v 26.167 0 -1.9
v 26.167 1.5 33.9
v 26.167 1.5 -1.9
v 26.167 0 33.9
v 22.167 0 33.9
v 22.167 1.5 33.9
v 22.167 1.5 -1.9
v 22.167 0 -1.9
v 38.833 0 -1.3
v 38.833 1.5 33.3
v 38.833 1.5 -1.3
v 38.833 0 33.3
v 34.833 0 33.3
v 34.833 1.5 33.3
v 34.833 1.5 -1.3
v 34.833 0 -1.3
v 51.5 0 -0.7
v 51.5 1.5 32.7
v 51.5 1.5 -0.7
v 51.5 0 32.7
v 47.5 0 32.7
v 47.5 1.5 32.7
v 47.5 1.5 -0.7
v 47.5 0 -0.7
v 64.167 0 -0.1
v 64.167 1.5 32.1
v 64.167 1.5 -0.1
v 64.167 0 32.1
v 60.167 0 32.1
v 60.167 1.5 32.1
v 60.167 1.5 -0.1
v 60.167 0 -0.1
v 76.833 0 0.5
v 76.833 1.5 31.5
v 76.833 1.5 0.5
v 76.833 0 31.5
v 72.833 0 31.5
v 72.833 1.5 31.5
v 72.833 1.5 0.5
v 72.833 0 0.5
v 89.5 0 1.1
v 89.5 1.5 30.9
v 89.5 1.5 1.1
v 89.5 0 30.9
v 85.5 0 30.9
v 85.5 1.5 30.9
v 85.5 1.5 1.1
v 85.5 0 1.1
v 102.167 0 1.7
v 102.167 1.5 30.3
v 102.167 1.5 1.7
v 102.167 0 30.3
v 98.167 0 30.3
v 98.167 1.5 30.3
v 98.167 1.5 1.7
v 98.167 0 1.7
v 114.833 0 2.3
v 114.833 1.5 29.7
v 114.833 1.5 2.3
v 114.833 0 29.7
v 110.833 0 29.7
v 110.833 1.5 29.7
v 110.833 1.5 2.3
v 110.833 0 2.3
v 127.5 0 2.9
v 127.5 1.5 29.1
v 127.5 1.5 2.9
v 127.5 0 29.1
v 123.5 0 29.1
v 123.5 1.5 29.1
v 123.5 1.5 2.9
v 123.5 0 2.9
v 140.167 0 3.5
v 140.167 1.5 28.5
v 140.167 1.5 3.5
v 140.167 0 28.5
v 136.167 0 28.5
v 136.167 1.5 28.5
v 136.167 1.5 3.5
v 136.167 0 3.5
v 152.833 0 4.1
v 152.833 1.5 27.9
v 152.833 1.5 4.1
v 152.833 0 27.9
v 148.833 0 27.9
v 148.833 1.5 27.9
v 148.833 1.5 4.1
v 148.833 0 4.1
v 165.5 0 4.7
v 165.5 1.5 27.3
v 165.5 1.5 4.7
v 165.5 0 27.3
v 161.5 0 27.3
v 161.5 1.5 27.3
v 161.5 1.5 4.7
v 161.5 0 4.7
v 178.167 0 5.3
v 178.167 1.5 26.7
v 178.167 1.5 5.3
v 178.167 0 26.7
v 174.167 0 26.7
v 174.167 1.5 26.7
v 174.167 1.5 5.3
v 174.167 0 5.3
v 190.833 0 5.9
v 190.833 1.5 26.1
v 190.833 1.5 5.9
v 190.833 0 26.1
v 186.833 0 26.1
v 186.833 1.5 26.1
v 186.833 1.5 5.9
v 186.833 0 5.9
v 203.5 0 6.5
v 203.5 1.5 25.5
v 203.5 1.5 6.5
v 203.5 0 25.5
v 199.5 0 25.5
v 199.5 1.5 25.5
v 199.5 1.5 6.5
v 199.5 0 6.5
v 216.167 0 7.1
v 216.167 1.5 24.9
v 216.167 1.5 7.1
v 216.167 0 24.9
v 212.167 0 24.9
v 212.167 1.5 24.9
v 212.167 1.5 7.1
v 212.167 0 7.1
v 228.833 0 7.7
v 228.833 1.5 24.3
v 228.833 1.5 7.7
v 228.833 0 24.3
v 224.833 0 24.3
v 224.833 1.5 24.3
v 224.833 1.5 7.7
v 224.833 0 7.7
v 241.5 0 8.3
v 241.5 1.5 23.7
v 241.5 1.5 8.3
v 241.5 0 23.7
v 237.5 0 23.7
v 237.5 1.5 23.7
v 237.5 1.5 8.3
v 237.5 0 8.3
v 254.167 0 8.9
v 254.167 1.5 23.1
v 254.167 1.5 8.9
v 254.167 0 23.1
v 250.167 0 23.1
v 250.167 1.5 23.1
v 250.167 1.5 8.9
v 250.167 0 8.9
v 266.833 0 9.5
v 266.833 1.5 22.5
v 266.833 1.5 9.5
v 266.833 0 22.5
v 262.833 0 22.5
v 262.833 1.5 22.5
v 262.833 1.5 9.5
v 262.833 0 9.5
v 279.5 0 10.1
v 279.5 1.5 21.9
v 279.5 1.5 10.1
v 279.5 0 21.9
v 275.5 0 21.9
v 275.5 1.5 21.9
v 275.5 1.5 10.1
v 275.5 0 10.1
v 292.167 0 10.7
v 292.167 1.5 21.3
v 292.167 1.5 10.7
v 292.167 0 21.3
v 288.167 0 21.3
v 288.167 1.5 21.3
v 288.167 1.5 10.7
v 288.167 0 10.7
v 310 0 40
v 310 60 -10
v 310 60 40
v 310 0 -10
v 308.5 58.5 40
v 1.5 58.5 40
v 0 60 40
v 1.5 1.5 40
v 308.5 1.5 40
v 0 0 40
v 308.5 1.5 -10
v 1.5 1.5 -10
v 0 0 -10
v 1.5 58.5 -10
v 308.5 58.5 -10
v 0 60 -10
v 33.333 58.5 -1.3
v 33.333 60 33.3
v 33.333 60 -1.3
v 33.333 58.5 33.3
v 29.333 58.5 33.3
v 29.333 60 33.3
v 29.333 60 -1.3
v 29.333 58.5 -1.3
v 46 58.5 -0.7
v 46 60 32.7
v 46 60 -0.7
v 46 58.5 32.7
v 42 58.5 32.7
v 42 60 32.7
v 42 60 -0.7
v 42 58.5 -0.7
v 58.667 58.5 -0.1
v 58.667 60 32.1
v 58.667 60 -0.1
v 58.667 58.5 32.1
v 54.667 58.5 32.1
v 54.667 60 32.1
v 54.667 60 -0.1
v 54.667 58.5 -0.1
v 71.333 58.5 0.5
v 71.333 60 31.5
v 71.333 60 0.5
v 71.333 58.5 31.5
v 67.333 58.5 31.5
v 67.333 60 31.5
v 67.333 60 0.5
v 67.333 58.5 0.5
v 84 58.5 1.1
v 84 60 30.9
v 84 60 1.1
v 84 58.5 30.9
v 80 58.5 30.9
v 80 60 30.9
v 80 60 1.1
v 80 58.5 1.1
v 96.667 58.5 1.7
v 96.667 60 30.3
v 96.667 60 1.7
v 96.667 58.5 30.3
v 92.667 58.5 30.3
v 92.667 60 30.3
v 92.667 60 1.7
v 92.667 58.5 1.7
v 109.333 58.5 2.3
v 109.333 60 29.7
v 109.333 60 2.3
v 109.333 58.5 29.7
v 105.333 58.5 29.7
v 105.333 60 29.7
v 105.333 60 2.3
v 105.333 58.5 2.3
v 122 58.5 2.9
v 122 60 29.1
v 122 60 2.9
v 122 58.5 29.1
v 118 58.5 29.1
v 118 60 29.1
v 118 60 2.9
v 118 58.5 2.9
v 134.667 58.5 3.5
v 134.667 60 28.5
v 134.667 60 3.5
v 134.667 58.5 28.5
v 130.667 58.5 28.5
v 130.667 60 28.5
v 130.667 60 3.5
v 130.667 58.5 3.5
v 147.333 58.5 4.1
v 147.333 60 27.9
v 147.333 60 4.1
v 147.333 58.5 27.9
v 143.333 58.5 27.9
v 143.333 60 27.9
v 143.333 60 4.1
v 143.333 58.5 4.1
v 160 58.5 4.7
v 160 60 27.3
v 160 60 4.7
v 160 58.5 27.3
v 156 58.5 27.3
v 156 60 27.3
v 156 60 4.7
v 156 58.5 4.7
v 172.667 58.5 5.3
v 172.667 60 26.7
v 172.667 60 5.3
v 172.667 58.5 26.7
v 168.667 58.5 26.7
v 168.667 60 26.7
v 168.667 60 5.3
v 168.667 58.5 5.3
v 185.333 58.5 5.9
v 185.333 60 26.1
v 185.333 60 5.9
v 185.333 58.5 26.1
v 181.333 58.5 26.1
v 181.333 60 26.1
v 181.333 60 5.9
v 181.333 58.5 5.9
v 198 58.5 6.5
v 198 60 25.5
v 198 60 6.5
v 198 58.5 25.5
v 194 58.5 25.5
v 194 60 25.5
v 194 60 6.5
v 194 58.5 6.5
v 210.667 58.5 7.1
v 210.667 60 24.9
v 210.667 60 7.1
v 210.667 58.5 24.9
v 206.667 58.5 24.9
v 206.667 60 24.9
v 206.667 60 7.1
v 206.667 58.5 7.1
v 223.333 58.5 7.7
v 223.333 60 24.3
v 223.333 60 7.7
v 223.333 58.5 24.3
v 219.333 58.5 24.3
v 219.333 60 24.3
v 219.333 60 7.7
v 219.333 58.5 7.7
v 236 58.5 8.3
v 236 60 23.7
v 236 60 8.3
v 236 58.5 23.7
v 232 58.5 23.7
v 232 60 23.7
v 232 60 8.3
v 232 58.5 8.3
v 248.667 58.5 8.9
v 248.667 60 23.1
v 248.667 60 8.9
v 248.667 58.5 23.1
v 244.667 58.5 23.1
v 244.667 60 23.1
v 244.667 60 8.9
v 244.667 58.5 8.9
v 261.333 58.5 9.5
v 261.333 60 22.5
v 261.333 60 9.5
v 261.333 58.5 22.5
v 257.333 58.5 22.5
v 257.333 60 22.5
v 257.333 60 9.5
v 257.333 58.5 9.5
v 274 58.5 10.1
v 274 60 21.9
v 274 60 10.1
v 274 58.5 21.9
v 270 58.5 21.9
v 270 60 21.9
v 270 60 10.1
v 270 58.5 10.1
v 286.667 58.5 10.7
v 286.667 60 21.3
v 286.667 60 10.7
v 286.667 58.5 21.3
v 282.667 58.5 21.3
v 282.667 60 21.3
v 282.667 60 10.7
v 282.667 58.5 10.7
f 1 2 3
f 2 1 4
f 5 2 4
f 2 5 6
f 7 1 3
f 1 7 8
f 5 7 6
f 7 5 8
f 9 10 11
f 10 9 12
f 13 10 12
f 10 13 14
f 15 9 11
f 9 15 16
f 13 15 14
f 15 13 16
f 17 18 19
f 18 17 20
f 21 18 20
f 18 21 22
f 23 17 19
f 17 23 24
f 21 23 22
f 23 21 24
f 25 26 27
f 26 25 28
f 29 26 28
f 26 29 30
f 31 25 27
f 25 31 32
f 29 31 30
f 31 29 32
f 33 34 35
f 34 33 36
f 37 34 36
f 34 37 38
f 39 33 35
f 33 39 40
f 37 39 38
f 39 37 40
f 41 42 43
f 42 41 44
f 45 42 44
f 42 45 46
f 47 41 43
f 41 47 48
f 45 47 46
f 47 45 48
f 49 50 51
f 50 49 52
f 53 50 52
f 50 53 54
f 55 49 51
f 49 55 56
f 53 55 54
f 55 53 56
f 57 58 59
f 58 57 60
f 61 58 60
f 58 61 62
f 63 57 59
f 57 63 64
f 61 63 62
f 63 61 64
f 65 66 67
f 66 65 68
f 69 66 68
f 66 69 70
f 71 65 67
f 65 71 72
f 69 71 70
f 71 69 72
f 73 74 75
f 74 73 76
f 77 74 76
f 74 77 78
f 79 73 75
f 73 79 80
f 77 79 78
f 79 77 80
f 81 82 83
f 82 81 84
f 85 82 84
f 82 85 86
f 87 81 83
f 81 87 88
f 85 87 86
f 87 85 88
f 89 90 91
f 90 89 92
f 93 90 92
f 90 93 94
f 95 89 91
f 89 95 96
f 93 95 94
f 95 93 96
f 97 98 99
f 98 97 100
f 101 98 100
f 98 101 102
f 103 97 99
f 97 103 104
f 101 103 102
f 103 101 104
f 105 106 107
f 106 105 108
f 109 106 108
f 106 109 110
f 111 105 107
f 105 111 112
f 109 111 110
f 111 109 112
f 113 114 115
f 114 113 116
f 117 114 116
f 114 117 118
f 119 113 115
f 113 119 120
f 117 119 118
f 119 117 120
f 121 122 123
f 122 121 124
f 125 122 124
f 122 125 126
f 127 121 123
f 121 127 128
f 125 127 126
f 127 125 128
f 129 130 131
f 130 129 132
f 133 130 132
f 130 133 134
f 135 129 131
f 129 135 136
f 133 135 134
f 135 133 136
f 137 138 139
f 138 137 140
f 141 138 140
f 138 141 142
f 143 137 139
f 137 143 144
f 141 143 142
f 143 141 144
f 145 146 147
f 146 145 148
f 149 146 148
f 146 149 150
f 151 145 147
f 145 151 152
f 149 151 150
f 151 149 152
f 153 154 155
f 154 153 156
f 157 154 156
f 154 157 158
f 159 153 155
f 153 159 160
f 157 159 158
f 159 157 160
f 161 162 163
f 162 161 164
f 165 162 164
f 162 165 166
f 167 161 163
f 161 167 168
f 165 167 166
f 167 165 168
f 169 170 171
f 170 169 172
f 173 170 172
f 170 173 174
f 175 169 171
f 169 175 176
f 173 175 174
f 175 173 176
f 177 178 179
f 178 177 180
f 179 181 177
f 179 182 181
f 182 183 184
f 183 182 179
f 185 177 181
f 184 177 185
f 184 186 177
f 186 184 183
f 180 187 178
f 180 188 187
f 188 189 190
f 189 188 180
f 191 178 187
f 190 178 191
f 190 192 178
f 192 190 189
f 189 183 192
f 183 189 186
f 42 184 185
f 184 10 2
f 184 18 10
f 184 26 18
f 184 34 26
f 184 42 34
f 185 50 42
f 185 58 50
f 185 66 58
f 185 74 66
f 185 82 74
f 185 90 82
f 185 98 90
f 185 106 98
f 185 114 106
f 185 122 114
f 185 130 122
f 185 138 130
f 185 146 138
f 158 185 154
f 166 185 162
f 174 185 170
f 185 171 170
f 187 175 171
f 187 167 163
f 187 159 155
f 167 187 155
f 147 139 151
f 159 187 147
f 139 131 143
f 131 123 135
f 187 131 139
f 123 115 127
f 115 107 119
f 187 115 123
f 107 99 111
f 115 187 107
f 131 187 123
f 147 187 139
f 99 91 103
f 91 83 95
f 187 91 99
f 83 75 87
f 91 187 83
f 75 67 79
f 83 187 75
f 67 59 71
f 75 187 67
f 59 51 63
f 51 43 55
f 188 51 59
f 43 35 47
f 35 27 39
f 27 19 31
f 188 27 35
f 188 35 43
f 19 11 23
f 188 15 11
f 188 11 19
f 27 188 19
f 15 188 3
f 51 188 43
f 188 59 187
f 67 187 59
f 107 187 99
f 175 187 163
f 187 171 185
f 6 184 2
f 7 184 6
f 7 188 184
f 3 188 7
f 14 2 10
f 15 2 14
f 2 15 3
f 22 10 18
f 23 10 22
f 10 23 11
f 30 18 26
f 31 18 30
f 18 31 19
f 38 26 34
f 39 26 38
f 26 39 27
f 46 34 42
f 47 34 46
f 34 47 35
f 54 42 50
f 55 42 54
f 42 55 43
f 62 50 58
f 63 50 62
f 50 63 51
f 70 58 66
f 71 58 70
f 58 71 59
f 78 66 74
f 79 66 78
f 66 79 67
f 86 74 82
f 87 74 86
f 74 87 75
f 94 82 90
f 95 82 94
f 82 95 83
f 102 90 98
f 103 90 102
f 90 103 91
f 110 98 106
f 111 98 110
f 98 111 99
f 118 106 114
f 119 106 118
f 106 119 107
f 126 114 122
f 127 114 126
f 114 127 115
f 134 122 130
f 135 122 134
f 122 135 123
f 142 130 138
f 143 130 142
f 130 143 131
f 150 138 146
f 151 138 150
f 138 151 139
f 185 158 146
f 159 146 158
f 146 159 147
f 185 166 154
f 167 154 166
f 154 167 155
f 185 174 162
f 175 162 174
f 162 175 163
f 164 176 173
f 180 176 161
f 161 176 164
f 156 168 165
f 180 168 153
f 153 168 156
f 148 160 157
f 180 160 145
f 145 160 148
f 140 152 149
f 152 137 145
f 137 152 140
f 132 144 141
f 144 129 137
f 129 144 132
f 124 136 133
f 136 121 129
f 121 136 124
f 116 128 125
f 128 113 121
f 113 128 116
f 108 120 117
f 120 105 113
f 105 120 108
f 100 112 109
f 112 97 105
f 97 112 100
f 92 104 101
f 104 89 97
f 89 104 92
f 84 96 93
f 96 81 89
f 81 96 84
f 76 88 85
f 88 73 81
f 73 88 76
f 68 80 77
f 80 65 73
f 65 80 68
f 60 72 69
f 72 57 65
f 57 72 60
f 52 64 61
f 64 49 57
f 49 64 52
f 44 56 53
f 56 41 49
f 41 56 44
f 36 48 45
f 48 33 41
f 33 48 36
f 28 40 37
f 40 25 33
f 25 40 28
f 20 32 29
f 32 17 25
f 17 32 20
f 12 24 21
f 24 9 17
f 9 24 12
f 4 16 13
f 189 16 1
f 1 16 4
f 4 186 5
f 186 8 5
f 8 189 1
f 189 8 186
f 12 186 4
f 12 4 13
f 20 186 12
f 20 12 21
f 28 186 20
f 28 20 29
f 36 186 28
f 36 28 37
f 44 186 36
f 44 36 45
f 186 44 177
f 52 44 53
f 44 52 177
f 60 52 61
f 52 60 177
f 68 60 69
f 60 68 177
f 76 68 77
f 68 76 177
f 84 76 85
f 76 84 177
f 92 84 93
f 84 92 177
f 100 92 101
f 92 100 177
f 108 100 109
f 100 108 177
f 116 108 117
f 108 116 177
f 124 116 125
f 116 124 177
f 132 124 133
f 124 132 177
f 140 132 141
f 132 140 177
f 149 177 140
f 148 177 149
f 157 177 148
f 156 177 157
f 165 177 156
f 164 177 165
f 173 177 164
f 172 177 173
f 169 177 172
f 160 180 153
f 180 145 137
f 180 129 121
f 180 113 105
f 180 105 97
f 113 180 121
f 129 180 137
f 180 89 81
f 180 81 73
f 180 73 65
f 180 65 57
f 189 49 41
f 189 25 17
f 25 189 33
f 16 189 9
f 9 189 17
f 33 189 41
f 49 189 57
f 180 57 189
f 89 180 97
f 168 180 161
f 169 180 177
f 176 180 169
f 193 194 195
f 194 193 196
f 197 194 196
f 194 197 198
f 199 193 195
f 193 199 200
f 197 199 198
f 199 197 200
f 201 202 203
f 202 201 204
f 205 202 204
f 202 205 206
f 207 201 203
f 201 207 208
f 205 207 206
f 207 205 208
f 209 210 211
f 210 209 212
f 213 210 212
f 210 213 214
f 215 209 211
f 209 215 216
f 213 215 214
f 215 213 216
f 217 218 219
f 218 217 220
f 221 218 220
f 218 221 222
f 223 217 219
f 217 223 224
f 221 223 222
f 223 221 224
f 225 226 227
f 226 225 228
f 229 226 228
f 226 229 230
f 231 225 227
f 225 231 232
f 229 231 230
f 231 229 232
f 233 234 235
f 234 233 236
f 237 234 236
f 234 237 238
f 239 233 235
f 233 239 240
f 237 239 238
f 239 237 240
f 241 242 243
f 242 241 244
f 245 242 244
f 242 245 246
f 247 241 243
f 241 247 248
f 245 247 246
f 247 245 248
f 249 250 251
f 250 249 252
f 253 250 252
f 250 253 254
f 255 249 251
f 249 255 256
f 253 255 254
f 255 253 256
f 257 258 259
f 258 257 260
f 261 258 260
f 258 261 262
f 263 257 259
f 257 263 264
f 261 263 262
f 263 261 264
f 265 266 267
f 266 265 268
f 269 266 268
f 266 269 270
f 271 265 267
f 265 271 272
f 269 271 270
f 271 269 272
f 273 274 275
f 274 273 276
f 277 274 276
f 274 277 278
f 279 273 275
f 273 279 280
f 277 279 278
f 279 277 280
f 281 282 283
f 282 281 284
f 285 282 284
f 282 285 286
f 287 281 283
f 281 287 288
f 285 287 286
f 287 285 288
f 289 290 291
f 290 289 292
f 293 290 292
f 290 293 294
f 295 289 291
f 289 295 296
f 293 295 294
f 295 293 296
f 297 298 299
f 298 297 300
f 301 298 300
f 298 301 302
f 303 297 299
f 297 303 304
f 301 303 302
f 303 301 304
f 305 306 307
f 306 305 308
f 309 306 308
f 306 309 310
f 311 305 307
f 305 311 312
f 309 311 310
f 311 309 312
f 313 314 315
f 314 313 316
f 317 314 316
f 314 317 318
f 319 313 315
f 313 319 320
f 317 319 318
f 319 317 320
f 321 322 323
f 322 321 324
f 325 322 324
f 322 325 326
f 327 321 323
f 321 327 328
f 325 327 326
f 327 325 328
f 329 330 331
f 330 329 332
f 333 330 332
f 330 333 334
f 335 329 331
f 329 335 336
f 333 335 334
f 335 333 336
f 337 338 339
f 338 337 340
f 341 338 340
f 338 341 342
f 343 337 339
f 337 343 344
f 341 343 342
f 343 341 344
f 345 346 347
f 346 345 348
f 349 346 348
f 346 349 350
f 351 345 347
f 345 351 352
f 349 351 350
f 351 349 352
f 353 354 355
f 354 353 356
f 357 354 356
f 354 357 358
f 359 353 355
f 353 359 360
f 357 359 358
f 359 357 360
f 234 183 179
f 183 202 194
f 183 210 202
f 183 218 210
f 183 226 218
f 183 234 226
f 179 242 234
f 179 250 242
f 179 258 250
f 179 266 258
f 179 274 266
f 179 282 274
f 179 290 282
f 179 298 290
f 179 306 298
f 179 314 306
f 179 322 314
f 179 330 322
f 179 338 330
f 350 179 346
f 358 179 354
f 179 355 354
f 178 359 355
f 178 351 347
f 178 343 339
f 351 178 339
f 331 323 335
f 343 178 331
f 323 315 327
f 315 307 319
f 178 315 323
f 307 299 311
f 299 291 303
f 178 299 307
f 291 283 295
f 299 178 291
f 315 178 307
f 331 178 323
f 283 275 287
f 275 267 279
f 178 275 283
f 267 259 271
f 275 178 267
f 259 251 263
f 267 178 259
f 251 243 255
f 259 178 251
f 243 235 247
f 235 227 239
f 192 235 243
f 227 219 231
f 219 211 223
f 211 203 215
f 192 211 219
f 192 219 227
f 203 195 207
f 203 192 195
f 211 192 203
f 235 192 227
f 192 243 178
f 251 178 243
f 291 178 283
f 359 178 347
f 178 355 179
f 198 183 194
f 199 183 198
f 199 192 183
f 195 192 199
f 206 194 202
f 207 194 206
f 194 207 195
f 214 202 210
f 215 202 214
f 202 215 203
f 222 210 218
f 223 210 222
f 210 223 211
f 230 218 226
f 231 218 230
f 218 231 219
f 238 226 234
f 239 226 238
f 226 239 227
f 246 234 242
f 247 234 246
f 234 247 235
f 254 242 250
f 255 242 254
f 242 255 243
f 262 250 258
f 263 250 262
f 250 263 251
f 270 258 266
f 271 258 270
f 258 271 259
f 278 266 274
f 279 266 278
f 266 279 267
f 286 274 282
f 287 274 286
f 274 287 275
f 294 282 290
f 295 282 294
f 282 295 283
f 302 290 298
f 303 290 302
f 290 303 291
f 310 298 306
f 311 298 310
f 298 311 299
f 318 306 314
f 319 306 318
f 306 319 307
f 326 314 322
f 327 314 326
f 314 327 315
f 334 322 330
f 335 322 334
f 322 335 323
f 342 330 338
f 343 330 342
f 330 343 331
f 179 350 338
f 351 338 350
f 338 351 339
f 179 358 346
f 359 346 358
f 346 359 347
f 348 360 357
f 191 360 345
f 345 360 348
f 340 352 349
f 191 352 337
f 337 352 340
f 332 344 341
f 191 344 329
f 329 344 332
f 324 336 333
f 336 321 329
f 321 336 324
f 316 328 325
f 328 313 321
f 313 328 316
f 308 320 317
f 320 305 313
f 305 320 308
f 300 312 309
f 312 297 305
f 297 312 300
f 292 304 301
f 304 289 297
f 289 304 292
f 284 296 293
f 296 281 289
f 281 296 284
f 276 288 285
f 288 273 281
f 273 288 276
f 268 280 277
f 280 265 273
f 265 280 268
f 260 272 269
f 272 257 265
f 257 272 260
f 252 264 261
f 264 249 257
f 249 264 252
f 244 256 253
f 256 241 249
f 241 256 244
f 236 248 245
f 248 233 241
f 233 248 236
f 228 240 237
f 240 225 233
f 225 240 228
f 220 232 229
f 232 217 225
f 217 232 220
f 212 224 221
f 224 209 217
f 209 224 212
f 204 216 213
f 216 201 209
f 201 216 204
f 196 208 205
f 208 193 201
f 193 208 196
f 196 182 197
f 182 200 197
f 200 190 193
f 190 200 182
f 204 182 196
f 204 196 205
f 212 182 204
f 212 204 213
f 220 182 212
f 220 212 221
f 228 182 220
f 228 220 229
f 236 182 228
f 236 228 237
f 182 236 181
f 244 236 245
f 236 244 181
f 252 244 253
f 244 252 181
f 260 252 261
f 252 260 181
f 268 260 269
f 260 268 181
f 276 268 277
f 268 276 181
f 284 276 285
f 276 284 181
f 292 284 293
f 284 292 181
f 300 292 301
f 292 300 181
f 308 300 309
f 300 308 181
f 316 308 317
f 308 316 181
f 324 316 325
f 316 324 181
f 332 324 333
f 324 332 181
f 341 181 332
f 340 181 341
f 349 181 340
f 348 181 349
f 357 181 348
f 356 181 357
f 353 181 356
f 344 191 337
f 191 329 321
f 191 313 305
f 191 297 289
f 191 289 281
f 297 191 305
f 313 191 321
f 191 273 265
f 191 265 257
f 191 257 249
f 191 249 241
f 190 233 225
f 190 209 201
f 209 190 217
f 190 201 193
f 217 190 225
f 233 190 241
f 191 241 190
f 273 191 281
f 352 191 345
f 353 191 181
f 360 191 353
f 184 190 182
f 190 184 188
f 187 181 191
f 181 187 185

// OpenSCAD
// file: variables.scad
$fn = 50;
//chambres

//globol

decal = 5; //decalage global chambres
lg = 310; //longueur totale
lag = 60; //largeur totae
ep = 1.5; //epaisseur plak
etv = 19; // ecart vert touches
eth = 14; //ecrat hor touches
nb = 15; //nombre de touches

//plaque dessus

hpd = 40; //hauteur plaque dessus
dth = 8; //diametre des trous pl haut
dtb = 6; //diametre des trous pl bas

//include <plaque_dessus.scad>

//tubes 

dtige=4; //diametre tige bouton
dtub = 6; //dimatre tube 
drtub = 8; //diametre tube ressort
hrtub = 10; //hauteur ressort tube
hbtub = 14; //hauteur du bas du tube

//include <tubes.scad>

//chambre

htc=10;//hauteur chambres
epa = 2; //epaisseur ailettes
epc=3; //grosse epaisseur chmbre

long0=etv-drtub;
long00=etv-drtub-ep*2;
long000=etv+etv/2;
long1=lag/2-drtub/2-epc-epc/2;
long2=lag/2+epc/2+drtub/2;

longb = 10; //largueur basse ailette
longh = 5; //largeur haute ailette

lab = lag-longb*2;


//plaque dessus ici a cause des variables des chambres


//tigettes

epe = 6; //epaisseur escalier
escalier = 3; //ecart de hauteur des touches
htig = hpd+epe;
etouch = 3; //epaisseur touche    
diat = 15; // diametre de la touche
//coté droit



echo();
echo();
echo();
echo();
echo("***********************");
echo("long000 aka inter cloisons = ", long000);
echo("long0 fond des cloisons = ", long0);
echo("long1 base ailette centrale = ", long1);
echo("long2 base ailette grande = ", long2);




echo("*********************** ");
echo();
echo();


hypo = sqrt((longb-longh)^2 + hpd^2);
echo("hypo" ,hypo);
cosin = hpd/hypo;
echo("cos alpha",cosin);
angle = acos(cosin);
echo("angle",angle);



//reservoir d'air


htr = 8;



//plaques ltérales

hhtt=37; //hauteur première plaque

//include <plaques_laterales.scad>

//plaques internes

//plaque intermediaire ou bout de bois


hauteur = hpd-hrtub;
echo("hauteur" , hauteur);
hypopo = 1 / (cos(angle) / hauteur);
hypopopo = 1 / (cos(angle) / hpd);
echo("hypopo", hypopo);
coop = sin(angle) * hypopo;
echo("coop", coop);

//plaques laterale interne
// main file
include <variables.scad>



//plaques laterales






//plaque face


translate([0,0,-htc])
color("Gainsboro",0.5)
cube([ep,lag,hpd+htc]);


//plaque fond
translate([lg-ep,0,-htc])
color("Gainsboro",0.5)
cube([ep,lag,hpd+htc]);


//plaque droit


difference(){

translate([0,0,-htc])

color("Gainsboro",0.5)
cube([lg,ep,hpd+htc]);
for(i=[1:1:22]){
translate([i*etv/1.5+etv/2,-0.1,-htc/4+i*1.2/2])
color("red",0.5)
cube([4,ep+0.2,hhtt-i*1.2]);

}
}

//plaque gauche


difference(){

translate([0,lag-ep,-htc])
color("Gainsboro",0.5)
cube([lg,ep,hpd+htc]);
for(i=[2:1:22]){
translate([i*etv/1.5+drtub/2,lag-ep-0.1,-htc/4+i*1.2/2])
color("red",0.5)
cube([4,ep+0.2,hhtt-i*1.2]);

}
}
